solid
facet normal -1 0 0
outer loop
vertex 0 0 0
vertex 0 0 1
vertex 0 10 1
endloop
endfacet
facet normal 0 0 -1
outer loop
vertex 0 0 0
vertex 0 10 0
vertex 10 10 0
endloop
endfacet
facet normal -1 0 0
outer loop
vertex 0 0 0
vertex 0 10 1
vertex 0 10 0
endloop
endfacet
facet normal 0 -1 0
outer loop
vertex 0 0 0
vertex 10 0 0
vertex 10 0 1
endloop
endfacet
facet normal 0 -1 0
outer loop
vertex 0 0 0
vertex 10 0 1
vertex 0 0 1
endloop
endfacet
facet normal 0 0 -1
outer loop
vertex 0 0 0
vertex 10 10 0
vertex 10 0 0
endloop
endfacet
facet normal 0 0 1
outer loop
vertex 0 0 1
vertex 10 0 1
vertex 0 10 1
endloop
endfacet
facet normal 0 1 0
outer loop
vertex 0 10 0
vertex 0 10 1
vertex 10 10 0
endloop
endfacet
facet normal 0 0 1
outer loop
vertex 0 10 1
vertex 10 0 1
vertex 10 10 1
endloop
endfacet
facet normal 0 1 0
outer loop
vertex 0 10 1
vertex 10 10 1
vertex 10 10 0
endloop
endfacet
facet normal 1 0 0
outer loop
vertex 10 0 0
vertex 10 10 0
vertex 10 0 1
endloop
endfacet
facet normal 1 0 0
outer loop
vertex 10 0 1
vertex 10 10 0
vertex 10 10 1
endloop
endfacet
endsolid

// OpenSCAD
/* Warning, this is a very basic generator with a lot of approximation 
input data : [TQFP, JNX, 10x10x1.0mm, 44, , C, C04-00220C]
generated by com.zoubworld.electronics.cad.model3d.Basic
Date : Sun Feb 15 10:50:48 CET 2026
*/

//body
color("black")
translate([0,0,0])
cube([10.0,10.0,1.0], center=false);
